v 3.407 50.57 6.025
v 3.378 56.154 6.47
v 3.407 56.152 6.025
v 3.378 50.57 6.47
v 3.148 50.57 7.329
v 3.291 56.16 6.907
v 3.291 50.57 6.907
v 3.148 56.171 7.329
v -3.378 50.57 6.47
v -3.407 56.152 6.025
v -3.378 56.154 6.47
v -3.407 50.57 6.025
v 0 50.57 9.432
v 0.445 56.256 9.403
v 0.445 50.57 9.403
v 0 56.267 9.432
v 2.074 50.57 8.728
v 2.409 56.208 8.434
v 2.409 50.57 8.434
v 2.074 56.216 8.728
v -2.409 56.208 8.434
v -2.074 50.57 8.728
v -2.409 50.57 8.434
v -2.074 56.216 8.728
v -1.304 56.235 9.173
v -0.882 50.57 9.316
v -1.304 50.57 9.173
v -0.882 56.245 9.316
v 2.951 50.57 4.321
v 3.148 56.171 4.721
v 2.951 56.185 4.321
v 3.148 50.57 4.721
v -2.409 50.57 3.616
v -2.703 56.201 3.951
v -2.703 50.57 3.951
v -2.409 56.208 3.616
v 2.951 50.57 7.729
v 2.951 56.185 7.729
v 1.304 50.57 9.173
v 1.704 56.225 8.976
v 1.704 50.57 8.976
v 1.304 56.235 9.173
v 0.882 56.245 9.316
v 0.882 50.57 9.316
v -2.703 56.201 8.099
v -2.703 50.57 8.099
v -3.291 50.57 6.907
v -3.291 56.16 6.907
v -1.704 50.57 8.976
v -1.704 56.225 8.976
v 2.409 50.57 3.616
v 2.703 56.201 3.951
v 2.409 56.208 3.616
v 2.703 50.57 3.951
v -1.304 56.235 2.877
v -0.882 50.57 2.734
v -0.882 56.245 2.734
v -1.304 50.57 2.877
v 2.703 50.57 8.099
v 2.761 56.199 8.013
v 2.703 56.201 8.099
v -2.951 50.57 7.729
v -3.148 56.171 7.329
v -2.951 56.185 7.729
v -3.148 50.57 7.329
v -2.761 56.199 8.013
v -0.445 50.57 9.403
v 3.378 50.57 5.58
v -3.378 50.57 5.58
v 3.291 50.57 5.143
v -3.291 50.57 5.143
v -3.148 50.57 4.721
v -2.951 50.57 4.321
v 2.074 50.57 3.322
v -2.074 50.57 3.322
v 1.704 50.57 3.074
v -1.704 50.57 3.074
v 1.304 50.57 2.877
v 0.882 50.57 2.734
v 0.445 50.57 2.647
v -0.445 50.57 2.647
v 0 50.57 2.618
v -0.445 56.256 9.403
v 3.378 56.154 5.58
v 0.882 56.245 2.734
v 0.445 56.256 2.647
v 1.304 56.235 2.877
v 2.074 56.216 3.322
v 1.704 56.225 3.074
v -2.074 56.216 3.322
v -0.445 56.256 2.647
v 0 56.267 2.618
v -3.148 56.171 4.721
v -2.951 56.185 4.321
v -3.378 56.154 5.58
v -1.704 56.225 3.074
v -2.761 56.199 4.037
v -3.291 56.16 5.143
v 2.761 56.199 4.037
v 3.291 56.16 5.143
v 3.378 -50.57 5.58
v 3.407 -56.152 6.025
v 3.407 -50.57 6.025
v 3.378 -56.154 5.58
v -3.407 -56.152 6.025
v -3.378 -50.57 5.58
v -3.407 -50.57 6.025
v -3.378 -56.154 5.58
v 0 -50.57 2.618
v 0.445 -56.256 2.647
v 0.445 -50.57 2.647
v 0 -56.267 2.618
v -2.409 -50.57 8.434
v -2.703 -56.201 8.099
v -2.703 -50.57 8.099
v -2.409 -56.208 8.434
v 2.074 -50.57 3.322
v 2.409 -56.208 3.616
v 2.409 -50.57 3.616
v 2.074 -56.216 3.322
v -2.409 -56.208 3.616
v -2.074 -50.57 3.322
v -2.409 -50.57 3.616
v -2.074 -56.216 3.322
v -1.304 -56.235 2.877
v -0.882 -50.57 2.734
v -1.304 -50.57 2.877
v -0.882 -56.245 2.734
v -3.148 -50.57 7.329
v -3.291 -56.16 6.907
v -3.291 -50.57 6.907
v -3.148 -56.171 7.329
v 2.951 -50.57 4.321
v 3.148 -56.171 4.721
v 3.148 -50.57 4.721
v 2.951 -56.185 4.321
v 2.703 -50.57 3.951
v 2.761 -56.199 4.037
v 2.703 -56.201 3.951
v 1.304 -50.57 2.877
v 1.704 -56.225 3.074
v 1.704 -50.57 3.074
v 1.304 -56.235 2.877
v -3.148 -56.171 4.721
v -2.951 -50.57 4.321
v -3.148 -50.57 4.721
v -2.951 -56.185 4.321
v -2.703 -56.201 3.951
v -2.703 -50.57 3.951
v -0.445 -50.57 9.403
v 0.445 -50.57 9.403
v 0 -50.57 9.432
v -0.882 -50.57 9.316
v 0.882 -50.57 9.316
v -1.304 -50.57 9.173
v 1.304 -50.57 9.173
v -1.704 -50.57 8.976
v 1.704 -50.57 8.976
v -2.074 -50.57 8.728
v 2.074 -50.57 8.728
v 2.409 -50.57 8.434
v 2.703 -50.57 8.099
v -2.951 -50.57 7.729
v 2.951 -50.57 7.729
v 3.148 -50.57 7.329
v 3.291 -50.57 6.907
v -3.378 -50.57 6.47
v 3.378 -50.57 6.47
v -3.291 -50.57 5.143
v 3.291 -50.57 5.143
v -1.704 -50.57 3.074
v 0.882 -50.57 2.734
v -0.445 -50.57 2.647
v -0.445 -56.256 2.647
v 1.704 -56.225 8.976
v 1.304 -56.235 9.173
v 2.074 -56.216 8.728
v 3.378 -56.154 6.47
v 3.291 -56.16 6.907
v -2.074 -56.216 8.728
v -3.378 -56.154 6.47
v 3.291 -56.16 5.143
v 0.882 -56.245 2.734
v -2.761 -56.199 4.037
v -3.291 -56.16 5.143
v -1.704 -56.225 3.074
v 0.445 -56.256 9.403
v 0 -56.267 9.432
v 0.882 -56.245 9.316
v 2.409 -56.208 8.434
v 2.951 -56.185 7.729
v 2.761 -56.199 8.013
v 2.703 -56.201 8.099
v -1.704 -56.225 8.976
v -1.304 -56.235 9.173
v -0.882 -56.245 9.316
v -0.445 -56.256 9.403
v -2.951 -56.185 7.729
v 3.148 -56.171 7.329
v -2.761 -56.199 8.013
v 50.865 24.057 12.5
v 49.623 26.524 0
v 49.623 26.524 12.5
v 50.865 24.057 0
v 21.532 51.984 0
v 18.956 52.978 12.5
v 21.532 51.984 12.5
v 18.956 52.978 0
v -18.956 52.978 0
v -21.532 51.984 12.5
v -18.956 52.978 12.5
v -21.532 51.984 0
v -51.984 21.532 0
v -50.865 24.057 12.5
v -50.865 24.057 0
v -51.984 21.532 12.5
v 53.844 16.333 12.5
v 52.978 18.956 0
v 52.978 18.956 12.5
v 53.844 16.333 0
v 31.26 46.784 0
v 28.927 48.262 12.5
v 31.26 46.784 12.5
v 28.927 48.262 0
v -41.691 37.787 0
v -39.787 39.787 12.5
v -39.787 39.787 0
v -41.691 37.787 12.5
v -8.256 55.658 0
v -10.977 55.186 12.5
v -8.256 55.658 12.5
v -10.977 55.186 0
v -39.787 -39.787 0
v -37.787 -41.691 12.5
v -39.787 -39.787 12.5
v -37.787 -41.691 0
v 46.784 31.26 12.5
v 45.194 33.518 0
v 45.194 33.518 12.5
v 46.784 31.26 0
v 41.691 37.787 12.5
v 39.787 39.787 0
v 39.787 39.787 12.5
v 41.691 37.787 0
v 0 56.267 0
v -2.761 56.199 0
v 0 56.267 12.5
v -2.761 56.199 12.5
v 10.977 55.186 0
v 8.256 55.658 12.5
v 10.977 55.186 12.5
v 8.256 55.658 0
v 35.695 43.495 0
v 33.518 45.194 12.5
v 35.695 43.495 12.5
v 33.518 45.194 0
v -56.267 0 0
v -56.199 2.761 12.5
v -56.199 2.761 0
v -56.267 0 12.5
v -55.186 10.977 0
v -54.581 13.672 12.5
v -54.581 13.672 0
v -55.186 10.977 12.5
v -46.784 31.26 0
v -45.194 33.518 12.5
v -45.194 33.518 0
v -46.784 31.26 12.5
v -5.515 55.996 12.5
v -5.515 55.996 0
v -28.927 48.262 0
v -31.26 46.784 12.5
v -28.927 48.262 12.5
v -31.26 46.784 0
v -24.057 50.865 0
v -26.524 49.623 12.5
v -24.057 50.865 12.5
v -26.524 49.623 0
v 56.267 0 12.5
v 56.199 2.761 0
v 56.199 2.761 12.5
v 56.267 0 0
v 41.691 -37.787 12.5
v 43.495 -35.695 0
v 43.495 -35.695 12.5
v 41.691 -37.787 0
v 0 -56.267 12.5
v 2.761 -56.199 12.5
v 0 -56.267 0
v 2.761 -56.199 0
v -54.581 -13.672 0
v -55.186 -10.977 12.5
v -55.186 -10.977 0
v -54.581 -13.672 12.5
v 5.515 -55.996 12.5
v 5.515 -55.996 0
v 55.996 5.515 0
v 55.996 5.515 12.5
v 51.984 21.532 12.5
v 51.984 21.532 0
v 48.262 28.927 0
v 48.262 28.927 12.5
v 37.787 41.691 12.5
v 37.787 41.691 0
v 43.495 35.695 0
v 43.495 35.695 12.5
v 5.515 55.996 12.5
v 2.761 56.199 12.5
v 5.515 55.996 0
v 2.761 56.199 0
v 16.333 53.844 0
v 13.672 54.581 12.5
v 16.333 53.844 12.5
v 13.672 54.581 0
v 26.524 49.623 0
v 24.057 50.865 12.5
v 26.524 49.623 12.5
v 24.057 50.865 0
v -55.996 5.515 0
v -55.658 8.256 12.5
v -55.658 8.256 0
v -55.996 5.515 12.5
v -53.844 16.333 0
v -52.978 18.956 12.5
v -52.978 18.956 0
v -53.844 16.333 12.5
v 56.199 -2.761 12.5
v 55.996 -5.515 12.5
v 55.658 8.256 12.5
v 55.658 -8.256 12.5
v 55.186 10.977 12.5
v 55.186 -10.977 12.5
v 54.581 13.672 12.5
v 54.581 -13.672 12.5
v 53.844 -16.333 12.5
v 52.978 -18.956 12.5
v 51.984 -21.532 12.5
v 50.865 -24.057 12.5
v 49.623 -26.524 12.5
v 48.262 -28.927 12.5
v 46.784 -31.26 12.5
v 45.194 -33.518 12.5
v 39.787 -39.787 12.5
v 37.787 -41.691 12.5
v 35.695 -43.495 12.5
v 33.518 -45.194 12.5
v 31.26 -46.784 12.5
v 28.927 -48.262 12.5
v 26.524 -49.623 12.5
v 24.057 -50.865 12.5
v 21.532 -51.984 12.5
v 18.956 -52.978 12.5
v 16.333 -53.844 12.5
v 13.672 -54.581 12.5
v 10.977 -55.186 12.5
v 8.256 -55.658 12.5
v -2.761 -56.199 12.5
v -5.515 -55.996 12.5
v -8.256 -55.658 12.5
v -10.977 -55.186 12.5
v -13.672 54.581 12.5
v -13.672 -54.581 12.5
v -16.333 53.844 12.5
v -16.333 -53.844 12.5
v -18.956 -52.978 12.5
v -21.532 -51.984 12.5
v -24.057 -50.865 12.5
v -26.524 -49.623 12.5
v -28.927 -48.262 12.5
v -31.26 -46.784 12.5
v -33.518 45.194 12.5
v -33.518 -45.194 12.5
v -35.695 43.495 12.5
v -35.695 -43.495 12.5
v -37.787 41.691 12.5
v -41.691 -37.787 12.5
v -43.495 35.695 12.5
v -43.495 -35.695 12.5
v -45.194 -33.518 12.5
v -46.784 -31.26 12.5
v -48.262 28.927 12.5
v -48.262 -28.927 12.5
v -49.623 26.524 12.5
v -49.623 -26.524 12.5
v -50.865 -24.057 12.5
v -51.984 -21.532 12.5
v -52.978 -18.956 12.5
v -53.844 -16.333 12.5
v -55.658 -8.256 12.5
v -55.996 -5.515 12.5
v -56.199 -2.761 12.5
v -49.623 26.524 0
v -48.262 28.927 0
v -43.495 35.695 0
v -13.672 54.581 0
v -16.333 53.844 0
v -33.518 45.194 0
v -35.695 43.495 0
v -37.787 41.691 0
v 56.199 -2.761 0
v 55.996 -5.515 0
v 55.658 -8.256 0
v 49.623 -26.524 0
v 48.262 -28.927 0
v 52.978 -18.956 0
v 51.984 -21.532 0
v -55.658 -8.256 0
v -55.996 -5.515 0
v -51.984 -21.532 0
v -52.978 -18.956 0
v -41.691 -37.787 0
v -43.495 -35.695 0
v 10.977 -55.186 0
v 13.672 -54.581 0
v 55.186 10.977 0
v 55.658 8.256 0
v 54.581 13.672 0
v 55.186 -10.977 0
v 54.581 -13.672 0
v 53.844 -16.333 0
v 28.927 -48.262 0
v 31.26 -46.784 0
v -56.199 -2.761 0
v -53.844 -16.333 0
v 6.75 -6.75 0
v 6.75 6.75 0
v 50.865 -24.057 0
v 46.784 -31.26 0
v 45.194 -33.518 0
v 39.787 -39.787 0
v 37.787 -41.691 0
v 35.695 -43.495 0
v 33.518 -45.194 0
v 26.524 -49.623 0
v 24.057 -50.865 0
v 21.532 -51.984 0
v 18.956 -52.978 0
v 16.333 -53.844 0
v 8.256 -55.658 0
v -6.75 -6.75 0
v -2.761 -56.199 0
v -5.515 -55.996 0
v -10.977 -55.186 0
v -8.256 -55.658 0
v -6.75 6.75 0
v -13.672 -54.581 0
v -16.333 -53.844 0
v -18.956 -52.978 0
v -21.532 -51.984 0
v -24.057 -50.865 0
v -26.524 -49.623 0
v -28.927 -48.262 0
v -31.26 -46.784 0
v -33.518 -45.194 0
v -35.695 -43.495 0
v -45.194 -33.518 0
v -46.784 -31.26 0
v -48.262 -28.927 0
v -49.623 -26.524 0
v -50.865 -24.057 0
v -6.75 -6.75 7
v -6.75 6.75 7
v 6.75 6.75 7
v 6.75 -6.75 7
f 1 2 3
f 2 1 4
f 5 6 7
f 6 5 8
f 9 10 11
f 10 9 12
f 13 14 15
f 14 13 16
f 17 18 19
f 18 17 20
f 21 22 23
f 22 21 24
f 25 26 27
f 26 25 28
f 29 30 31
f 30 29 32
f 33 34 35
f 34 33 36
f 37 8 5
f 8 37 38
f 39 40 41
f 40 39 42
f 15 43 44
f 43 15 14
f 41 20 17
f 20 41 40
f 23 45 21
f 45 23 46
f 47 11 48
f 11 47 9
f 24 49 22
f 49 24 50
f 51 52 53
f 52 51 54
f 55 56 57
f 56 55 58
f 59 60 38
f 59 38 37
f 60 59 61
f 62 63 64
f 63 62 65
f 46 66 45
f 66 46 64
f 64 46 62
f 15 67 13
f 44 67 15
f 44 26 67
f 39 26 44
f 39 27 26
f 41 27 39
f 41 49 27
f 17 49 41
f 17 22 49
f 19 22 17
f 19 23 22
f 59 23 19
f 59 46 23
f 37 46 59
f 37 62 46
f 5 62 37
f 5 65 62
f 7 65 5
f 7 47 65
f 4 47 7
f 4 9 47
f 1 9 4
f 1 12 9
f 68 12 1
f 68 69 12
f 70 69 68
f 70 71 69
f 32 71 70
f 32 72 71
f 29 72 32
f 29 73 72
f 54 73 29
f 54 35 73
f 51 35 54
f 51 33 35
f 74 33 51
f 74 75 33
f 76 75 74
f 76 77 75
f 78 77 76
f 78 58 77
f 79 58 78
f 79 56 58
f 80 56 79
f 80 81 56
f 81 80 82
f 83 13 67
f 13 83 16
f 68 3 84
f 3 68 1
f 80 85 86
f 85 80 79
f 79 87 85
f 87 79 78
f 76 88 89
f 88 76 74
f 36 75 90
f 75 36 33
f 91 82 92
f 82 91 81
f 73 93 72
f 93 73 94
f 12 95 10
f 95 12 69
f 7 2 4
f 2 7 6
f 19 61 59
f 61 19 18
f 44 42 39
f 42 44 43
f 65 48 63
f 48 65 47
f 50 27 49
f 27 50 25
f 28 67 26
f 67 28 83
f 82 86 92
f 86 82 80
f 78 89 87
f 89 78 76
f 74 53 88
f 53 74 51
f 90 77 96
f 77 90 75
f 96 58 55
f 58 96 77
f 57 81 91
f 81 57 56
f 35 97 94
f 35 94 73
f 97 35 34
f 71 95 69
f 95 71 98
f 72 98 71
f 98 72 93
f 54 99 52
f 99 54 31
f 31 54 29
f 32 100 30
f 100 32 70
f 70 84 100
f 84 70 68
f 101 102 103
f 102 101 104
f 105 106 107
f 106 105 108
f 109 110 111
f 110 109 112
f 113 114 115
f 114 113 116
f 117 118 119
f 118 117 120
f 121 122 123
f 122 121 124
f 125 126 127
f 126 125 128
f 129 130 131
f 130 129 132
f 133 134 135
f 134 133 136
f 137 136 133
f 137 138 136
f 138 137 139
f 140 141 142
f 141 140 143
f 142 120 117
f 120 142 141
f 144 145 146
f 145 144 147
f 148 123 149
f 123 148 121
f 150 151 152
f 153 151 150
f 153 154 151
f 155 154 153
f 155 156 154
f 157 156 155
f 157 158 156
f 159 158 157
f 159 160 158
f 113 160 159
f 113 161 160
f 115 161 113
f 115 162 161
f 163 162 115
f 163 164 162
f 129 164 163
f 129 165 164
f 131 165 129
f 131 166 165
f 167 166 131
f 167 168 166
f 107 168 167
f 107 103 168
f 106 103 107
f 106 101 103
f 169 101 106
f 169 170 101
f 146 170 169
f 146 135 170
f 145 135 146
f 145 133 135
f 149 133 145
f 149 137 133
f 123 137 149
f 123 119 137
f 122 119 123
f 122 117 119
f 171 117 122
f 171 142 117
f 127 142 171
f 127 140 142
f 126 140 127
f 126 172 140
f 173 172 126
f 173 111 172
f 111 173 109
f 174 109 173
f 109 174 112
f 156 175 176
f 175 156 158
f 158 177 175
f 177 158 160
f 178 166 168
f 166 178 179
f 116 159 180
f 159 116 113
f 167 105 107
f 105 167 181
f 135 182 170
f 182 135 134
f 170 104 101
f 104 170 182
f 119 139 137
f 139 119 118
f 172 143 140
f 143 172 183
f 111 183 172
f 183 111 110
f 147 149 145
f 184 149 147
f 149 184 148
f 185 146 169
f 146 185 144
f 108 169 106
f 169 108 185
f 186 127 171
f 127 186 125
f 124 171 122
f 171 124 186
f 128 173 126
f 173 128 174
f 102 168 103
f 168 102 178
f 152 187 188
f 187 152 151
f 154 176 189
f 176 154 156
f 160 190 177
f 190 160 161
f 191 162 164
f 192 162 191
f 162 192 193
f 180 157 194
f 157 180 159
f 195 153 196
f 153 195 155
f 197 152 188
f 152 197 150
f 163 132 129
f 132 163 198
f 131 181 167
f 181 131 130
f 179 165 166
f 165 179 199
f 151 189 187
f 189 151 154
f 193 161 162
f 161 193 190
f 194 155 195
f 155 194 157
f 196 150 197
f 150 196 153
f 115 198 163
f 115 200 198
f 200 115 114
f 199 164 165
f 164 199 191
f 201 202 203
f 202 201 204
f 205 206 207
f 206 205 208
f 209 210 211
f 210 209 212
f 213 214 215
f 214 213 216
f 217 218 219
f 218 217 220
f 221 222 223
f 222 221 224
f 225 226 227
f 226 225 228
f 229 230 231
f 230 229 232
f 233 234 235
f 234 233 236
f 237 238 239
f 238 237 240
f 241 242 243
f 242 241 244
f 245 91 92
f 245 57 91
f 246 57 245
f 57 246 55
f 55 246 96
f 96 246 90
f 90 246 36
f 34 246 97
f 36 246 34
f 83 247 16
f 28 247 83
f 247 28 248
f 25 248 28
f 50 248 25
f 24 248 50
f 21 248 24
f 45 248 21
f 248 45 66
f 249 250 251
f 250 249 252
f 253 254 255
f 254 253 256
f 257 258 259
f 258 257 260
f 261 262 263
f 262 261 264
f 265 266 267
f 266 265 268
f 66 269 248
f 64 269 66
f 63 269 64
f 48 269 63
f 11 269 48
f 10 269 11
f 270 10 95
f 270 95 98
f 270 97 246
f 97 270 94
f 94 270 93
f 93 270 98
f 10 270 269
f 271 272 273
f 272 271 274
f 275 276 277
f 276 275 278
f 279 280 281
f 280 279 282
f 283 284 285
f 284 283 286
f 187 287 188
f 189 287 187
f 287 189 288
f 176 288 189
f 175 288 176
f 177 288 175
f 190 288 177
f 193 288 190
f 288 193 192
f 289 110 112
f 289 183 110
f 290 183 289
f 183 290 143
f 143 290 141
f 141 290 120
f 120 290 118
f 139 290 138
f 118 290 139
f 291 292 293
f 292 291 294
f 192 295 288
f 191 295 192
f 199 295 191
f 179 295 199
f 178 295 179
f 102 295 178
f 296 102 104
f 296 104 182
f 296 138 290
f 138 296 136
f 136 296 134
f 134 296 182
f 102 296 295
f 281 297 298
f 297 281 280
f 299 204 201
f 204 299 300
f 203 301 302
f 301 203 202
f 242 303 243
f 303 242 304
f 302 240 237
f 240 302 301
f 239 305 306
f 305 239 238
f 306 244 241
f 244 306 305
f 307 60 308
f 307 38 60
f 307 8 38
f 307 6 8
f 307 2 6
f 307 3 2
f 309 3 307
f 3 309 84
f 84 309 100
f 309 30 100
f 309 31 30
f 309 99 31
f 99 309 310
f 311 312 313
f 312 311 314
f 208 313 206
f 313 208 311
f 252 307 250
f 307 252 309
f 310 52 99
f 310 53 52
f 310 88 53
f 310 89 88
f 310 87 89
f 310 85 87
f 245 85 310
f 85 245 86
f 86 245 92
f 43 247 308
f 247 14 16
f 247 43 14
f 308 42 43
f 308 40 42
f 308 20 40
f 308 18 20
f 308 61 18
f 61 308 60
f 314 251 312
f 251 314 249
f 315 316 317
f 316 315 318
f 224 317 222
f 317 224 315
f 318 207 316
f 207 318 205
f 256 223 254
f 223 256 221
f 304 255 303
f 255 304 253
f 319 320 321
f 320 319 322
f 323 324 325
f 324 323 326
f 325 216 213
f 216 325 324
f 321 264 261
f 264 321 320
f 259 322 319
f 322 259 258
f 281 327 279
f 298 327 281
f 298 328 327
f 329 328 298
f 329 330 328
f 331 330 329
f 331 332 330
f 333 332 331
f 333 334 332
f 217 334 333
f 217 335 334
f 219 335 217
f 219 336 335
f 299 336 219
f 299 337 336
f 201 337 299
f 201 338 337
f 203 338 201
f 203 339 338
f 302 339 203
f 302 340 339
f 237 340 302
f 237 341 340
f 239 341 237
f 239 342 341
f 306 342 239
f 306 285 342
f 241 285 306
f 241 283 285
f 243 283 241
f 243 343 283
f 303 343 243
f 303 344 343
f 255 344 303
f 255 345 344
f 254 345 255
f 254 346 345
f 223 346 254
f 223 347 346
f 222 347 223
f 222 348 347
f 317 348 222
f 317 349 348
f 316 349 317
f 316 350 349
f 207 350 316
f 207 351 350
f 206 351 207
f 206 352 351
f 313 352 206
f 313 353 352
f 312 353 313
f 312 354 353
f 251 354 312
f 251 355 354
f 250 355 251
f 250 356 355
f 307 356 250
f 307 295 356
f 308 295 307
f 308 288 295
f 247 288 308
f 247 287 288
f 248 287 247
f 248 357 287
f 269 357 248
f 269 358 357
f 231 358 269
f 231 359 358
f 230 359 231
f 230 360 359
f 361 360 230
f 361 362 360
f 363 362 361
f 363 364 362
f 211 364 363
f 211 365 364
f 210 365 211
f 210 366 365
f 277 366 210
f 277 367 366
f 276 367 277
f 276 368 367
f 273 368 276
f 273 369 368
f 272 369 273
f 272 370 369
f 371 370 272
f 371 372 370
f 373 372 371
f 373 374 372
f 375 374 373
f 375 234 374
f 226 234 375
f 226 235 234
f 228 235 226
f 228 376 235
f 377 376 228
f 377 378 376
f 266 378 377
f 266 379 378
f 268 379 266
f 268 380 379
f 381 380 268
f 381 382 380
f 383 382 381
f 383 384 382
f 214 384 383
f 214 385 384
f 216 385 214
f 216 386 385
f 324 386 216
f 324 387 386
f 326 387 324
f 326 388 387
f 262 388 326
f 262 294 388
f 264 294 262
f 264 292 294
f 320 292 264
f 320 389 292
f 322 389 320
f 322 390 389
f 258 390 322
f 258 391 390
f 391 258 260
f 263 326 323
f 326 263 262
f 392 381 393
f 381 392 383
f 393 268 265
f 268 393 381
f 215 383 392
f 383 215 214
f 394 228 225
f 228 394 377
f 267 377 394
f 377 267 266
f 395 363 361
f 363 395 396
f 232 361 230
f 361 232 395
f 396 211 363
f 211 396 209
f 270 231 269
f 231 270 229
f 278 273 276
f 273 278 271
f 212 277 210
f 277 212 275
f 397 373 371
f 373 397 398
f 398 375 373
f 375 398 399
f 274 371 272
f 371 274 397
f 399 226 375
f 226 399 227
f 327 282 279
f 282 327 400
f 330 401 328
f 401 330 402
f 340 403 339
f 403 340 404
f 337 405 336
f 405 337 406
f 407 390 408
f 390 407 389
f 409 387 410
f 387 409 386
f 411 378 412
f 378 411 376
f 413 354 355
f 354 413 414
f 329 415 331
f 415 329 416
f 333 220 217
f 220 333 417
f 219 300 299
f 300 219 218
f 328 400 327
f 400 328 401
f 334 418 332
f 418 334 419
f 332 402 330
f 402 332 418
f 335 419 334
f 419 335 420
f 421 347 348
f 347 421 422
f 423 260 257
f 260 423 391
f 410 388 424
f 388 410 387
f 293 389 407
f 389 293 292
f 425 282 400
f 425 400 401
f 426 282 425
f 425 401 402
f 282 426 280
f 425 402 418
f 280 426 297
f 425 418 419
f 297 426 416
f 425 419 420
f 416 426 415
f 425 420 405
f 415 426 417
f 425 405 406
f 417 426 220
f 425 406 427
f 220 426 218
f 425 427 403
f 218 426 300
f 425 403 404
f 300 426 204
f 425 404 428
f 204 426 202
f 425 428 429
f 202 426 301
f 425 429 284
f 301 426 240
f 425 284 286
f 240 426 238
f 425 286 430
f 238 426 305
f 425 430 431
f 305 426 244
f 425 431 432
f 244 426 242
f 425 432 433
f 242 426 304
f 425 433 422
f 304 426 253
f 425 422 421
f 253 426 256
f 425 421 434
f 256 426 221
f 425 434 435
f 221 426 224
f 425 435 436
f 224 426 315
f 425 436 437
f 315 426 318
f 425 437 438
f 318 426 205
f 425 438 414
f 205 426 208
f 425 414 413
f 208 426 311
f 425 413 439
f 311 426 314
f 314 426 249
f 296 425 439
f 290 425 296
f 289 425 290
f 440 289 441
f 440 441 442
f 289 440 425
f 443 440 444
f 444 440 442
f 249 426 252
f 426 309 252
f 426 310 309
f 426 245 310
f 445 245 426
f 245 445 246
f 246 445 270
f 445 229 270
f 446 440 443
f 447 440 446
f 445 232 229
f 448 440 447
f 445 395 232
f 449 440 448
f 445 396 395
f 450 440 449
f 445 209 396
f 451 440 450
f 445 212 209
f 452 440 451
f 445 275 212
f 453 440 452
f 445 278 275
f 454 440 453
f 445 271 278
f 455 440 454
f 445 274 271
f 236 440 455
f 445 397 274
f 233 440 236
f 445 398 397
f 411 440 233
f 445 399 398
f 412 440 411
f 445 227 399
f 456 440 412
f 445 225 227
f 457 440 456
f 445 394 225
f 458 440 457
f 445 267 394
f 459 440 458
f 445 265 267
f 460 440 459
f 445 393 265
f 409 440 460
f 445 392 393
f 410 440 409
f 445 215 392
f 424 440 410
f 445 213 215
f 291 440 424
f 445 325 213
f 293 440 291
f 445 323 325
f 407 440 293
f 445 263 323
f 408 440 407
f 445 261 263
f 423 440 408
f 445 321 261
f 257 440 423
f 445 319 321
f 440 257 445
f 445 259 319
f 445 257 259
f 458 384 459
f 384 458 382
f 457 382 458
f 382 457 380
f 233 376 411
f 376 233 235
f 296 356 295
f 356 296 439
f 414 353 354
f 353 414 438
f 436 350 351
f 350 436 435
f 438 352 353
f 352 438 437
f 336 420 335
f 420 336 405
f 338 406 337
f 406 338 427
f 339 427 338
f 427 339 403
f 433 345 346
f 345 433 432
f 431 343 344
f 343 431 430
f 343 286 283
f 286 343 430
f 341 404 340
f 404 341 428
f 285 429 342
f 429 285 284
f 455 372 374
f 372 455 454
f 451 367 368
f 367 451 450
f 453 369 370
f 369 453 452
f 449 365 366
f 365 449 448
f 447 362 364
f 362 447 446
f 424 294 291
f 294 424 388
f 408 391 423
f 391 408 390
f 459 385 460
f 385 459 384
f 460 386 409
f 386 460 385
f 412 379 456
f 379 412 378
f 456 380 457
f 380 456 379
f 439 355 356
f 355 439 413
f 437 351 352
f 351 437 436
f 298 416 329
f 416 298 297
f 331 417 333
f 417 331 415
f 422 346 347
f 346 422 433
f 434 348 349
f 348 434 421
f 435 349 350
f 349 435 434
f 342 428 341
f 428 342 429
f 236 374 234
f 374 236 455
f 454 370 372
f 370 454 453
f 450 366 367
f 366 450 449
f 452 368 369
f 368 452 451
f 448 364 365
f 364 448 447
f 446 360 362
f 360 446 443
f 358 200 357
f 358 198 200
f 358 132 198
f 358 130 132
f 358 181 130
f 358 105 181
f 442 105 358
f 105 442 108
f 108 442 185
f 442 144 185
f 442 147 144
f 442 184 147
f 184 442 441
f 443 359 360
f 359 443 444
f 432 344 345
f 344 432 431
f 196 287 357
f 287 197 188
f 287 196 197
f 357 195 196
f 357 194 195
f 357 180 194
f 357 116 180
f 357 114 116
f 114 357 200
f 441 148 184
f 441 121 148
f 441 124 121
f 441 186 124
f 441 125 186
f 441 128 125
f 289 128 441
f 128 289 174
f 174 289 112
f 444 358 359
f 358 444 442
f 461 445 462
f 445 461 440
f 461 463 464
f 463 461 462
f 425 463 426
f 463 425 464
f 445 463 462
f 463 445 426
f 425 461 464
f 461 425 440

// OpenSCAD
// file: cylinder_outer.scad
 module cylinder_outer(h, d=1, r, center=false, fn=48){
   rad = !is_undef(r) ? r : d/2;
   fudge = 1/cos(180/fn);
   cylinder(h=h,r=rad*fudge,center=center,$fn=fn);
}
// main file
use <cylinder_outer.scad>

// Globals (in mm)
function GenericMountDisc_Diameter() = 112.5;
function GenericMountDisc_Thickness() = 12.5;
function GenericMountDisc_NotchZ() = 6.025;
function GenericMountDisc_NotchDiameter() = 6.8;
function GenericMountDisc_NotchDepth() = 5.75;

module GenericMountDisc(pos = [0,0,0]) {
// Parameters (in mm)
errorMargin=0.07;
baseDiam = GenericMountDisc_Diameter();
baseRadius = baseDiam / 2;
baseThickness = GenericMountDisc_Thickness();
holeCenter = GenericMountDisc_NotchZ();
holeDiam = GenericMountDisc_NotchDiameter();
holeRadius = holeDiam / 2;
holeDepth = GenericMountDisc_NotchDepth();
boxHeight = 7;
boxWidth = 13.5;

// Offset to position
translate(pos) {

    // Base
    difference() {
    cylinder_outer(h=baseThickness, r=baseRadius, fn=128);

    // Bolt holes
    translate([0, 0, holeCenter]) {
        offset = baseRadius - holeDepth/2 + errorMargin;
        translate([0, offset, 0]) rotate([90,0,0]) cylinder_outer(h=holeDepth, r=holeRadius, center=true);
        translate([0, -offset, 0]) rotate([-90,0,0]) cylinder_outer(h=holeDepth, r=holeRadius, center=true);
    }

    // Box
    offset = boxWidth / 2;
    translate([-offset, -offset, -errorMargin]) cube([boxWidth, boxWidth, boxHeight + errorMargin]);
    }
    }
}

GenericMountDisc();
